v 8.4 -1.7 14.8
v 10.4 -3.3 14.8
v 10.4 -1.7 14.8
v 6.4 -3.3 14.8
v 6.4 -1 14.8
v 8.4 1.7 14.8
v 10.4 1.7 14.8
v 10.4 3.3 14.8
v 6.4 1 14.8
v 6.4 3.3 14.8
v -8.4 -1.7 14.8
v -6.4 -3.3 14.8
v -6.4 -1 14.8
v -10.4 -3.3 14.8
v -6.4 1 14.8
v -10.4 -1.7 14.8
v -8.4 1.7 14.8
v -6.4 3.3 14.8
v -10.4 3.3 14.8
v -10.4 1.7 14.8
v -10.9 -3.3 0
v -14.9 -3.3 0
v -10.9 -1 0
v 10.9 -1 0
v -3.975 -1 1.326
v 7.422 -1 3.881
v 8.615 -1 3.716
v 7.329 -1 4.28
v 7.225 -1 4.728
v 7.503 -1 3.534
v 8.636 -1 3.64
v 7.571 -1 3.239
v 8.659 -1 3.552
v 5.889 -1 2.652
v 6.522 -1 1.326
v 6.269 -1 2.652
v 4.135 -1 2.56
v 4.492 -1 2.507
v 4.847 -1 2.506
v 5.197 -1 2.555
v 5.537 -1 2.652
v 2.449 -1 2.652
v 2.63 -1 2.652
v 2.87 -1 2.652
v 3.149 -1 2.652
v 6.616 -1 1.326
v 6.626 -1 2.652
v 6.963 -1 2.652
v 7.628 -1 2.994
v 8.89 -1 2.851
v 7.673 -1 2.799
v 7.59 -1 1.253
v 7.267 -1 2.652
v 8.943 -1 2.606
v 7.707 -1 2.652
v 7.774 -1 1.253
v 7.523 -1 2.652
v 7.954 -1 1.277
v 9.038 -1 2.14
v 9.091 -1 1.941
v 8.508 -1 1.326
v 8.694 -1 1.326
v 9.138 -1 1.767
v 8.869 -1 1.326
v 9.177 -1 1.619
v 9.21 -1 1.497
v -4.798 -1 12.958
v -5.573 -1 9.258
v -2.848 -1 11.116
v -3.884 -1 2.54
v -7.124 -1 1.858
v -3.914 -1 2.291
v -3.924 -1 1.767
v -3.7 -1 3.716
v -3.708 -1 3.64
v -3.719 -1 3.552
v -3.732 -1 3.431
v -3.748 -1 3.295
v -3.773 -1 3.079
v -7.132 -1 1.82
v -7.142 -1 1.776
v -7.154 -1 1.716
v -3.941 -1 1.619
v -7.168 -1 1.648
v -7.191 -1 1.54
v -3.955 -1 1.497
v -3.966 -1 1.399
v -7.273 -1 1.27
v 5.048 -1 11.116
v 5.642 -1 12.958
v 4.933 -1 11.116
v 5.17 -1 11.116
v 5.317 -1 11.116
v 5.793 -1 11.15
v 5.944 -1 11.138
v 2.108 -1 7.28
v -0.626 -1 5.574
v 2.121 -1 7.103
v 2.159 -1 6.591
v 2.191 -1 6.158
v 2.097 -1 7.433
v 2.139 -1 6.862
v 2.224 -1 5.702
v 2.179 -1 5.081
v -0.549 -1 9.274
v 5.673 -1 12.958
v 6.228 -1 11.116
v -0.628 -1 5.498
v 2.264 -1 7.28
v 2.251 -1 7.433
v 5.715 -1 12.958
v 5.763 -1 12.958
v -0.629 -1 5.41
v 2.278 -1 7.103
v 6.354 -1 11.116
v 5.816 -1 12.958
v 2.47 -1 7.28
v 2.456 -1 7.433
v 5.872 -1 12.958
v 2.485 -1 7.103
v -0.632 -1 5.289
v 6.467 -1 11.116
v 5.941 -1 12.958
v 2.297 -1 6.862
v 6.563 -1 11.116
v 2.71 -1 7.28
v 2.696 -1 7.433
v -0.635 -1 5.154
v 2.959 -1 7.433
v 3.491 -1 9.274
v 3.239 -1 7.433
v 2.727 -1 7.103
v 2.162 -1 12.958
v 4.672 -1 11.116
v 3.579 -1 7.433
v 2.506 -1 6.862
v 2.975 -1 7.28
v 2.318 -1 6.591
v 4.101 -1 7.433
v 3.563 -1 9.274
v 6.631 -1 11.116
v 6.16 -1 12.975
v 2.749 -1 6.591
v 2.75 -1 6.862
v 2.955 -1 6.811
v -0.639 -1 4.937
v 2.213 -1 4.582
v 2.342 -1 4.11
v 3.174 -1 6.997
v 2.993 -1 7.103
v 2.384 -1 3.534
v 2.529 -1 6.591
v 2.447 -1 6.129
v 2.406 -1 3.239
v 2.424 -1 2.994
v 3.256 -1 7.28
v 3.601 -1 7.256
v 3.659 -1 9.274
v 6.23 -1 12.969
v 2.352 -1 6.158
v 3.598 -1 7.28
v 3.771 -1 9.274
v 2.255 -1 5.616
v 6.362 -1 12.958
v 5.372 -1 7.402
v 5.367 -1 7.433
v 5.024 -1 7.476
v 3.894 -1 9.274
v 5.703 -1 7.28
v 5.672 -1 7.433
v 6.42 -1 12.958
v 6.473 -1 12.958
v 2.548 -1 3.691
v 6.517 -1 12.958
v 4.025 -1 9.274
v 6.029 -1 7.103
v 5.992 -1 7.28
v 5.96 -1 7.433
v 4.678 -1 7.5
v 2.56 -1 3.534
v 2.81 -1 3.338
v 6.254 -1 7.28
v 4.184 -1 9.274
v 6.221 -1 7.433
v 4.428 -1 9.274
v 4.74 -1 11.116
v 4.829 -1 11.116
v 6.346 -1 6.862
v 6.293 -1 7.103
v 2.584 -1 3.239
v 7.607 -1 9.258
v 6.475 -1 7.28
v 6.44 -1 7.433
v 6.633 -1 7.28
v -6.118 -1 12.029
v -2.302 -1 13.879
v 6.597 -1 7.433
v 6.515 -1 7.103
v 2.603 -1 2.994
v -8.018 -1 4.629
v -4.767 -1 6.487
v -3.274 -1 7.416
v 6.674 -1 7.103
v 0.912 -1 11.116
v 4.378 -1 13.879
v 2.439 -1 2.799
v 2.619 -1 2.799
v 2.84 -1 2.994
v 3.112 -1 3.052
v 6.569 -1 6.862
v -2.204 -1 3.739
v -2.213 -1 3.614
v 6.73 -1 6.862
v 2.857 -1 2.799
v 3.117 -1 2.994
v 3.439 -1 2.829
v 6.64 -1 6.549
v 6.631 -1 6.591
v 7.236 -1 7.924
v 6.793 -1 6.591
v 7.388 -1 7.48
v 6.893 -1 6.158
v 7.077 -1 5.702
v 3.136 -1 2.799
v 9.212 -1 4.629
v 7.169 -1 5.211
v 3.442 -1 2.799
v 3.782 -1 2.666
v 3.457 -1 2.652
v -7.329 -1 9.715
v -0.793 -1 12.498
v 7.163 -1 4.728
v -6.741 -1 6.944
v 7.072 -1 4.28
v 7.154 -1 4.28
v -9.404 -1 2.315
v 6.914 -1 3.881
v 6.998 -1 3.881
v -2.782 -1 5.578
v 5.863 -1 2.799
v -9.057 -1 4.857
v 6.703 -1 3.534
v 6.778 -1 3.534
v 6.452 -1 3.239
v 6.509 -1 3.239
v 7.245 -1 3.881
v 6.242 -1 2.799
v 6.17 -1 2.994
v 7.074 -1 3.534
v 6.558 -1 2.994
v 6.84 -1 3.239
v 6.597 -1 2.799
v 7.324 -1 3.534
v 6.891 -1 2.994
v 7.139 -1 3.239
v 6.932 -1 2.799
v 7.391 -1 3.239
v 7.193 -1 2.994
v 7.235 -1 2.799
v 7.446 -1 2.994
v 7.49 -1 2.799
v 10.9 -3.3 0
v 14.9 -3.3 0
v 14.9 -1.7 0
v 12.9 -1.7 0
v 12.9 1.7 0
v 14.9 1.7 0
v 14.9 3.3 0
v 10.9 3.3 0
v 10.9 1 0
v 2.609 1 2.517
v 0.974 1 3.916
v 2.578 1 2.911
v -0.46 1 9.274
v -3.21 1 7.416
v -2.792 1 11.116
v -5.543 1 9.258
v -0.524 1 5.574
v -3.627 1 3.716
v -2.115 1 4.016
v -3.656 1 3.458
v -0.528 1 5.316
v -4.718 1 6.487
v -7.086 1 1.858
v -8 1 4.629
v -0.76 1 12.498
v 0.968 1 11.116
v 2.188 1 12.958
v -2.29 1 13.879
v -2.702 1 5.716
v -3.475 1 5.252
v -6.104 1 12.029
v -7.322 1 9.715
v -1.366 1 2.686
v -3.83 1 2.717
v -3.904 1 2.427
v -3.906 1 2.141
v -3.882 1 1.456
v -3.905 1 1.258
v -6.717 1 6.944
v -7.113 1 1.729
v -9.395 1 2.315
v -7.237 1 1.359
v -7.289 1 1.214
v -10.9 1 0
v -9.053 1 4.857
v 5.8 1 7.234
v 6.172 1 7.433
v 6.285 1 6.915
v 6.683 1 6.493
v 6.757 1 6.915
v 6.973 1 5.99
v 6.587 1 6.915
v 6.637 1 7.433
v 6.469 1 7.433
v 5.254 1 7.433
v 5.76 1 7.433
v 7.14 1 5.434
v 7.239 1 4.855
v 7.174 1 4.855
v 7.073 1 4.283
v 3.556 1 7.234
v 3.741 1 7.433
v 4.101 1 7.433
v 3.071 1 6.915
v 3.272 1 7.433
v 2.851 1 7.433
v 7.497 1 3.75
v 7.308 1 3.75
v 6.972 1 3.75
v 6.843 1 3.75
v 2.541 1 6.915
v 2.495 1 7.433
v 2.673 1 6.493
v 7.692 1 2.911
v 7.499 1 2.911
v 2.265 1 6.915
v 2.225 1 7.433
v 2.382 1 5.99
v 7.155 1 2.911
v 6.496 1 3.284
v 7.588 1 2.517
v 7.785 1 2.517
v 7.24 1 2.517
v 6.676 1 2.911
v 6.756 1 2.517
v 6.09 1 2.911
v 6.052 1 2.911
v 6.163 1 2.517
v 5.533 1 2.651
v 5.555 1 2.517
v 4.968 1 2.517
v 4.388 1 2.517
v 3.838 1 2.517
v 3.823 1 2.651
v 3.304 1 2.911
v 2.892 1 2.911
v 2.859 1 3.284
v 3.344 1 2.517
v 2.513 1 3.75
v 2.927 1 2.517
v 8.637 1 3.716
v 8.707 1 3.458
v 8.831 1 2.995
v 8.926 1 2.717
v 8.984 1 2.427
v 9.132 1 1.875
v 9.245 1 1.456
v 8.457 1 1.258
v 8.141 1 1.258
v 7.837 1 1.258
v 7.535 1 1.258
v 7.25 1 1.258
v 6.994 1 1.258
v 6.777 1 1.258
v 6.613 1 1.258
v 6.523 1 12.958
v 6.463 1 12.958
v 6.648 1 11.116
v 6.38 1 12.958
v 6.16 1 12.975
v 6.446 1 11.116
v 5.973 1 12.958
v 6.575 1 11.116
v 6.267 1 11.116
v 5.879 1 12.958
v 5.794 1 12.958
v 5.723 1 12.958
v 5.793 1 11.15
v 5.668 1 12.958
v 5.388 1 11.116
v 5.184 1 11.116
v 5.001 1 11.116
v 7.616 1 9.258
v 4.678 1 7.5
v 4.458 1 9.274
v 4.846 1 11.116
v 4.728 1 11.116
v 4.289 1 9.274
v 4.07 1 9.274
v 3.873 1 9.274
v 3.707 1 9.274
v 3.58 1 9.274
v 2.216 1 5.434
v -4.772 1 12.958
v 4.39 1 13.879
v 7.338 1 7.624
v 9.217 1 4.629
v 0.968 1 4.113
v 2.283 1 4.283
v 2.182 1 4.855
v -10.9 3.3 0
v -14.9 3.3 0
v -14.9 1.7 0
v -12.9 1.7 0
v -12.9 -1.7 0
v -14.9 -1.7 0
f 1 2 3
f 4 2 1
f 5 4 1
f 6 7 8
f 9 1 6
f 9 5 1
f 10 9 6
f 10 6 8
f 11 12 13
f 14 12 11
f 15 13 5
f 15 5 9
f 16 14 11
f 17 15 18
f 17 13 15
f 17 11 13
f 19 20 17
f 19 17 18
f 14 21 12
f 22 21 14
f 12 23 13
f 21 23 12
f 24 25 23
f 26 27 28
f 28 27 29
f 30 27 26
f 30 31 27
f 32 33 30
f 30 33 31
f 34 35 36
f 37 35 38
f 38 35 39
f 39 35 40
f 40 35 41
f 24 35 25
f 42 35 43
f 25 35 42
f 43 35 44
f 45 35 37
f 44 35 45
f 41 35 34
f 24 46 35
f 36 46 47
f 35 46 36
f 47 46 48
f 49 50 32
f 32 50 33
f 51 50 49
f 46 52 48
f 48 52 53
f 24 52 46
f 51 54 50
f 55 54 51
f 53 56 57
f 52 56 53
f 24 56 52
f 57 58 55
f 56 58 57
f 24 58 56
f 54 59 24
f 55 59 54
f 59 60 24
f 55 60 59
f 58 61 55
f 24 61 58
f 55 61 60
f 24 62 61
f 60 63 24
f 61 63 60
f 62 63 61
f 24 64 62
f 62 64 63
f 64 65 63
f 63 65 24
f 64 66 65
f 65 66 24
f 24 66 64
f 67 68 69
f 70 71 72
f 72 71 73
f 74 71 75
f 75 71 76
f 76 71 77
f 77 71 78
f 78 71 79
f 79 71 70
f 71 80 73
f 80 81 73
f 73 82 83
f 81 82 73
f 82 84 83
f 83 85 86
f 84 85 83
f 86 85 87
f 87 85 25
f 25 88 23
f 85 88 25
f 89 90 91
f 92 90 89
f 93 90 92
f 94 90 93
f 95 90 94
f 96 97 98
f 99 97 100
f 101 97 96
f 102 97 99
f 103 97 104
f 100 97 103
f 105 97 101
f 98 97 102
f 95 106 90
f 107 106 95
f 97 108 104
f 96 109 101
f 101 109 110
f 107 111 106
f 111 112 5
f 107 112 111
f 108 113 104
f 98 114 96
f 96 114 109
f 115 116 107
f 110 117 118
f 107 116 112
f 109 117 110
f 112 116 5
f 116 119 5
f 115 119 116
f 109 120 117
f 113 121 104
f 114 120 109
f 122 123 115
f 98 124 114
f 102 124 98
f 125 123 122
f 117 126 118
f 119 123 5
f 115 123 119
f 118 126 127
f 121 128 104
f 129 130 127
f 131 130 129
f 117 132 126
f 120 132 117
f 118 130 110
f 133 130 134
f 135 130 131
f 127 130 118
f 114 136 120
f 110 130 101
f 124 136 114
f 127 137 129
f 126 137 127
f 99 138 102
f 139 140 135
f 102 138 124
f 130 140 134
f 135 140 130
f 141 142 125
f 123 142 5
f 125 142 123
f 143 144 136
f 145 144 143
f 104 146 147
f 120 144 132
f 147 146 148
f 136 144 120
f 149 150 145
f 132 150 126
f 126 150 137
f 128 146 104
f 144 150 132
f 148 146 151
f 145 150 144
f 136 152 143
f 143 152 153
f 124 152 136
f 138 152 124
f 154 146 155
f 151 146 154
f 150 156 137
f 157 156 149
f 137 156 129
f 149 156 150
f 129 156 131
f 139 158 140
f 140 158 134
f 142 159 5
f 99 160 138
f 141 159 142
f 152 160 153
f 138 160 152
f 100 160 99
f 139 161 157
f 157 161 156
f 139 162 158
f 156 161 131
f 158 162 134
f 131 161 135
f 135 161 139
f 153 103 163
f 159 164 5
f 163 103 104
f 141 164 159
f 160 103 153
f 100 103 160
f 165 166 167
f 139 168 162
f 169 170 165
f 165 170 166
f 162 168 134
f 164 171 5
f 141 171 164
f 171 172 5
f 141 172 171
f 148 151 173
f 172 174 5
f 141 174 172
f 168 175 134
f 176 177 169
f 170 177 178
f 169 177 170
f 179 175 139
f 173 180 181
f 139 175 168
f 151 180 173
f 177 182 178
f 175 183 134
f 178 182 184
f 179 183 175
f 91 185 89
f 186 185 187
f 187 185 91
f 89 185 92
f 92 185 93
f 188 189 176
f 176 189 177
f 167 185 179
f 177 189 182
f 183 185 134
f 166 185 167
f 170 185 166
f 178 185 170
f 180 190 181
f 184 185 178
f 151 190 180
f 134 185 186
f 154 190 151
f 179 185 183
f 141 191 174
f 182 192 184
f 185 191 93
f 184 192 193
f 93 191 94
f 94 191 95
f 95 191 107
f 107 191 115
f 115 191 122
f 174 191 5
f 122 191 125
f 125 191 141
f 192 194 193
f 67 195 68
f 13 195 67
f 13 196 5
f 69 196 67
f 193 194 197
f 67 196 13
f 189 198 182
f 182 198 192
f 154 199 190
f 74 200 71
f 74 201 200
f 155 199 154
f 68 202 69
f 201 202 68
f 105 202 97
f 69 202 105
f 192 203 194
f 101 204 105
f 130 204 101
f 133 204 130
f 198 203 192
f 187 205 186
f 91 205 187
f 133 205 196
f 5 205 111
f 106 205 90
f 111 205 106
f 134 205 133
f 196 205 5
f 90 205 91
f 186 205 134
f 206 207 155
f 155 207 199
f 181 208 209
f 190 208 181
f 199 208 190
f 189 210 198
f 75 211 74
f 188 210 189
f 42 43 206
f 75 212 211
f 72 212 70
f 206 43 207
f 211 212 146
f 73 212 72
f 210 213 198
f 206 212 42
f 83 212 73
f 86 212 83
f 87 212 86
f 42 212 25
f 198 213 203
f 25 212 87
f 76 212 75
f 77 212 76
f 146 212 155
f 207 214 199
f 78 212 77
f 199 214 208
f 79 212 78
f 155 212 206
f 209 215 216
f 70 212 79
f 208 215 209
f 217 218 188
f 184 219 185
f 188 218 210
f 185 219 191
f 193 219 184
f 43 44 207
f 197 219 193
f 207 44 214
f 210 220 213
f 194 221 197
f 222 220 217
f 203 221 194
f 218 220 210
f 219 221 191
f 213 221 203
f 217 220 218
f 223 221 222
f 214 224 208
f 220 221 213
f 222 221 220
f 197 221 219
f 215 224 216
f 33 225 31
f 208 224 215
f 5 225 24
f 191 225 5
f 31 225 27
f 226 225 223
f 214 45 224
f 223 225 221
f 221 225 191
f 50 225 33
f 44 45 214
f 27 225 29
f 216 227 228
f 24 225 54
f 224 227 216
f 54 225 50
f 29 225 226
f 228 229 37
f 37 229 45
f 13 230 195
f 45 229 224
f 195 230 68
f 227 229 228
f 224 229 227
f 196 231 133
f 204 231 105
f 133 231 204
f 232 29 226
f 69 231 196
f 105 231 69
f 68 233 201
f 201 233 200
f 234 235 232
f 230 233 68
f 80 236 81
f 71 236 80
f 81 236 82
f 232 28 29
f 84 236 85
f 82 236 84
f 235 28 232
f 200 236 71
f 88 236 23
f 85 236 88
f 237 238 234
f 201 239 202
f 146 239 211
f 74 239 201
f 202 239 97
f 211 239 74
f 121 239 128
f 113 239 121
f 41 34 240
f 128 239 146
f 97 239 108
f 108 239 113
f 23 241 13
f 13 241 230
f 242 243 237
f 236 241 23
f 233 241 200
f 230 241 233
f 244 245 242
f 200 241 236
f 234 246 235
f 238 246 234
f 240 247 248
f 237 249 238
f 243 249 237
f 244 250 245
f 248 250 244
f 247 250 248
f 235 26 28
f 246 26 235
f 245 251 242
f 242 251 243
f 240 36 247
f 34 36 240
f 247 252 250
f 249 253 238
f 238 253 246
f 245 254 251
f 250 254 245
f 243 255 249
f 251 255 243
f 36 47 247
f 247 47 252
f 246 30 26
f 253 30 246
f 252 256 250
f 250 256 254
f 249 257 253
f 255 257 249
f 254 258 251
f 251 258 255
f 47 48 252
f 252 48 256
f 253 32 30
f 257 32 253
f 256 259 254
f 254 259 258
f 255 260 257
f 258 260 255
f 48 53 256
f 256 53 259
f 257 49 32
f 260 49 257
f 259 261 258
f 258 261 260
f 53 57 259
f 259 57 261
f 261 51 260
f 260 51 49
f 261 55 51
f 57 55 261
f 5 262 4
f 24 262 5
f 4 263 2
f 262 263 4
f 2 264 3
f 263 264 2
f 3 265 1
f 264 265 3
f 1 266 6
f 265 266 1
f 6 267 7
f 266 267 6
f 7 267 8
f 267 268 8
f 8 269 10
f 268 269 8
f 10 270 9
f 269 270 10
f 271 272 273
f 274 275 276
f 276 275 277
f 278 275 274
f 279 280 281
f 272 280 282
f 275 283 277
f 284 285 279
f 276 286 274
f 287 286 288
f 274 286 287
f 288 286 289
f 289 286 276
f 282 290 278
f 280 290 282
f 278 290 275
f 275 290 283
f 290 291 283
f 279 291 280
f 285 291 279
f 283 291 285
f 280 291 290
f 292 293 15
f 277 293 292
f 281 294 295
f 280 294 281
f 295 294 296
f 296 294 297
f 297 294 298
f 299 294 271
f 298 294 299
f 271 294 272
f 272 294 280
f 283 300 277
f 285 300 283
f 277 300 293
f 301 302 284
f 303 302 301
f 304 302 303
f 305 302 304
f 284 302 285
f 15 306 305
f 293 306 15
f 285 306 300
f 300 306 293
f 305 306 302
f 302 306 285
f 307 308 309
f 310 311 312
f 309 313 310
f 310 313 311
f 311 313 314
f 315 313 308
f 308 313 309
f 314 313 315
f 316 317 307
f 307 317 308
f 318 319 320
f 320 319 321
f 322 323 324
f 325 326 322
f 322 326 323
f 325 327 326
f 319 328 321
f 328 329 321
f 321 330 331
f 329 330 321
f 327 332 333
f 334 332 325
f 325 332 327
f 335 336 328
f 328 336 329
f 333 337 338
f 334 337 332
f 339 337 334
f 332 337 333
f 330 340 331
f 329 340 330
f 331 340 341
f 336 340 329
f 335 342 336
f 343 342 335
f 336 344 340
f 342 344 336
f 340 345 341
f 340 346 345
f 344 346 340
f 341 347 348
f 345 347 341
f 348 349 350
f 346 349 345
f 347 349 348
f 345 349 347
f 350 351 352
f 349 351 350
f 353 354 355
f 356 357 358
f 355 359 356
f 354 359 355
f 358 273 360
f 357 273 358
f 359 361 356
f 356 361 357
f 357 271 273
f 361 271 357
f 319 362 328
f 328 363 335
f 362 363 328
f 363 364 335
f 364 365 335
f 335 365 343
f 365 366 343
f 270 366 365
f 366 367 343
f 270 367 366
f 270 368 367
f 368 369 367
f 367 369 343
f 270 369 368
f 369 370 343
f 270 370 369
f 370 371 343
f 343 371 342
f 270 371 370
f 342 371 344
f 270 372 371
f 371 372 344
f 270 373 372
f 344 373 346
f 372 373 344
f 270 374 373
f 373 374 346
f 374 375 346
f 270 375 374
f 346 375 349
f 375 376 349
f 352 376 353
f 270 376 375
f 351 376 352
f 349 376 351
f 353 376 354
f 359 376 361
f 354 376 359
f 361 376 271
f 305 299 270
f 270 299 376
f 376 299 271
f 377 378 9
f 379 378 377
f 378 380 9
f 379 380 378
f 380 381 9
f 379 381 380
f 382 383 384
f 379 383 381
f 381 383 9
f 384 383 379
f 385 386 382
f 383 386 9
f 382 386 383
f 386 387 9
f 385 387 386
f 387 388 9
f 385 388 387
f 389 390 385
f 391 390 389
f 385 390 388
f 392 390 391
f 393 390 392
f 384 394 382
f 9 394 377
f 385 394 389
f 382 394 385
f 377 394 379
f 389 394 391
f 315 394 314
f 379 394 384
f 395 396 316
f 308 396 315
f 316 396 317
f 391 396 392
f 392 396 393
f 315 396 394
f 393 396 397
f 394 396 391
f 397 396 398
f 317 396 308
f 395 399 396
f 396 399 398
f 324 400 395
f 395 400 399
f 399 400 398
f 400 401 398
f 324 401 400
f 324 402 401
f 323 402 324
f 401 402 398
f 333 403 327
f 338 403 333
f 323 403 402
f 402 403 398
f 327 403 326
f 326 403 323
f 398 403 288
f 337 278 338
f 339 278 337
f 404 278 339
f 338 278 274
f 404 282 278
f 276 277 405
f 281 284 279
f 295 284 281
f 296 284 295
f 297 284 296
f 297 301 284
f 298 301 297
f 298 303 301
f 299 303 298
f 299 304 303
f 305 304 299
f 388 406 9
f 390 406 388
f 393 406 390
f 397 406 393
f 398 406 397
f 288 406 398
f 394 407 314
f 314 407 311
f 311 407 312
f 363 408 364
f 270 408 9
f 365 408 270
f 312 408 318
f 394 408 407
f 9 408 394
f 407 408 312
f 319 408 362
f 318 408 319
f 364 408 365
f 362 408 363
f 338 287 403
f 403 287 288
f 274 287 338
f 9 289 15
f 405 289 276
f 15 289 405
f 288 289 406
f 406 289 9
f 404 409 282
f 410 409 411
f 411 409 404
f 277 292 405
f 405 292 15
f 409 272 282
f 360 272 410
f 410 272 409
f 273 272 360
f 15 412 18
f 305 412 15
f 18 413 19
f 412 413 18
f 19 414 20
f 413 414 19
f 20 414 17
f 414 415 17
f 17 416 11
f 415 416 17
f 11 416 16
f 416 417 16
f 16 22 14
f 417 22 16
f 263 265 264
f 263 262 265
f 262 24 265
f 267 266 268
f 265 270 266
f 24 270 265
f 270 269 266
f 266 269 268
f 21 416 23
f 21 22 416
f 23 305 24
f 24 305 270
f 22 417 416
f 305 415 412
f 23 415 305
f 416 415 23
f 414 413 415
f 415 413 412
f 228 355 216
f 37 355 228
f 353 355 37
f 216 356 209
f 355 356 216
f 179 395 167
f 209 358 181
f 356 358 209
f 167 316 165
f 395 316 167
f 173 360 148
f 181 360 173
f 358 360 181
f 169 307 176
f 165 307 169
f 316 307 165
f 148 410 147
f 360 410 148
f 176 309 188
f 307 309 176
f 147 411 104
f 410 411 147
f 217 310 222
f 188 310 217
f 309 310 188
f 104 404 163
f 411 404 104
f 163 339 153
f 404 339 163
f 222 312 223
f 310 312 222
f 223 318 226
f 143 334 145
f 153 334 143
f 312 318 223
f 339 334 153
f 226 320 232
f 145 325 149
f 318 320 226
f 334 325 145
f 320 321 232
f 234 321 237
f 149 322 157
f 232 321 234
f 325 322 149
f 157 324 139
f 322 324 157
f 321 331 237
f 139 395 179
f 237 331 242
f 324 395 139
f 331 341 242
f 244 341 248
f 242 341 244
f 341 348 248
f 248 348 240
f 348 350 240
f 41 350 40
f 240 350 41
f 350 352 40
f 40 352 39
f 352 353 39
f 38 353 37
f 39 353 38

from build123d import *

# Parameters (mm, degrees)
SKETCH_R     = 2.5
POCKET_DEPTH = 4.301


with BuildPart() as part:
    # CopySketch002 → AdditiveLoft section 0
    with BuildSketch(Plane.XY.offset(14.8)):
        Polygon((-10.399994, -3.3), (-6.399994, -3.3), (-6.399994, -1), (6.399994, -1), (6.399994, -3.3), (10.399994, -3.3), (10.400006, -1.7), (8.400006, -1.7), (8.400006, 1.7), (10.400006, 1.7), (10.400006, 3.3), (6.400006, 3.3), (6.400006, 1), (-6.399994, 1), (-6.399994, 3.3), (-10.399994, 3.3), (-10.399994, 1.7), (-8.399994, 1.7), (-8.399994, -1.7), (-10.399994, -1.7), align=None)
    # Sketch001 (on Plane) → AdditiveLoft section 1
    with BuildSketch(Plane.XY):
        Polygon((-14.899994, -3.3), (-10.899994, -3.3), (-10.899994, -1), (10.899994, -1), (10.899994, -3.3), (14.899994, -3.3), (14.900006, -1.7), (12.900006, -1.7), (12.900006, 1.7), (14.900006, 1.7), (14.900006, 3.3), (10.900006, 3.3), (10.900006, 1), (-10.899994, 1), (-10.899994, 3.3), (-14.899994, 3.3), (-14.899994, 1.7), (-12.899994, 1.7), (-12.899994, -1.7), (-14.899994, -1.7), align=None)
    loft()

    # Sketch (on Face15 of AdditiveLoft) → Pocket (cut, through all)
    with BuildSketch(Plane(origin=(6e-06, 1, 6.758382), x_dir=(0, 0, 1), z_dir=(0, 1, 0))):
        with Locations((-1.758382, 4.677874)):
            Circle(SKETCH_R)
    extrude(amount=-POCKET_DEPTH, mode=Mode.SUBTRACT)


solid = part.part
